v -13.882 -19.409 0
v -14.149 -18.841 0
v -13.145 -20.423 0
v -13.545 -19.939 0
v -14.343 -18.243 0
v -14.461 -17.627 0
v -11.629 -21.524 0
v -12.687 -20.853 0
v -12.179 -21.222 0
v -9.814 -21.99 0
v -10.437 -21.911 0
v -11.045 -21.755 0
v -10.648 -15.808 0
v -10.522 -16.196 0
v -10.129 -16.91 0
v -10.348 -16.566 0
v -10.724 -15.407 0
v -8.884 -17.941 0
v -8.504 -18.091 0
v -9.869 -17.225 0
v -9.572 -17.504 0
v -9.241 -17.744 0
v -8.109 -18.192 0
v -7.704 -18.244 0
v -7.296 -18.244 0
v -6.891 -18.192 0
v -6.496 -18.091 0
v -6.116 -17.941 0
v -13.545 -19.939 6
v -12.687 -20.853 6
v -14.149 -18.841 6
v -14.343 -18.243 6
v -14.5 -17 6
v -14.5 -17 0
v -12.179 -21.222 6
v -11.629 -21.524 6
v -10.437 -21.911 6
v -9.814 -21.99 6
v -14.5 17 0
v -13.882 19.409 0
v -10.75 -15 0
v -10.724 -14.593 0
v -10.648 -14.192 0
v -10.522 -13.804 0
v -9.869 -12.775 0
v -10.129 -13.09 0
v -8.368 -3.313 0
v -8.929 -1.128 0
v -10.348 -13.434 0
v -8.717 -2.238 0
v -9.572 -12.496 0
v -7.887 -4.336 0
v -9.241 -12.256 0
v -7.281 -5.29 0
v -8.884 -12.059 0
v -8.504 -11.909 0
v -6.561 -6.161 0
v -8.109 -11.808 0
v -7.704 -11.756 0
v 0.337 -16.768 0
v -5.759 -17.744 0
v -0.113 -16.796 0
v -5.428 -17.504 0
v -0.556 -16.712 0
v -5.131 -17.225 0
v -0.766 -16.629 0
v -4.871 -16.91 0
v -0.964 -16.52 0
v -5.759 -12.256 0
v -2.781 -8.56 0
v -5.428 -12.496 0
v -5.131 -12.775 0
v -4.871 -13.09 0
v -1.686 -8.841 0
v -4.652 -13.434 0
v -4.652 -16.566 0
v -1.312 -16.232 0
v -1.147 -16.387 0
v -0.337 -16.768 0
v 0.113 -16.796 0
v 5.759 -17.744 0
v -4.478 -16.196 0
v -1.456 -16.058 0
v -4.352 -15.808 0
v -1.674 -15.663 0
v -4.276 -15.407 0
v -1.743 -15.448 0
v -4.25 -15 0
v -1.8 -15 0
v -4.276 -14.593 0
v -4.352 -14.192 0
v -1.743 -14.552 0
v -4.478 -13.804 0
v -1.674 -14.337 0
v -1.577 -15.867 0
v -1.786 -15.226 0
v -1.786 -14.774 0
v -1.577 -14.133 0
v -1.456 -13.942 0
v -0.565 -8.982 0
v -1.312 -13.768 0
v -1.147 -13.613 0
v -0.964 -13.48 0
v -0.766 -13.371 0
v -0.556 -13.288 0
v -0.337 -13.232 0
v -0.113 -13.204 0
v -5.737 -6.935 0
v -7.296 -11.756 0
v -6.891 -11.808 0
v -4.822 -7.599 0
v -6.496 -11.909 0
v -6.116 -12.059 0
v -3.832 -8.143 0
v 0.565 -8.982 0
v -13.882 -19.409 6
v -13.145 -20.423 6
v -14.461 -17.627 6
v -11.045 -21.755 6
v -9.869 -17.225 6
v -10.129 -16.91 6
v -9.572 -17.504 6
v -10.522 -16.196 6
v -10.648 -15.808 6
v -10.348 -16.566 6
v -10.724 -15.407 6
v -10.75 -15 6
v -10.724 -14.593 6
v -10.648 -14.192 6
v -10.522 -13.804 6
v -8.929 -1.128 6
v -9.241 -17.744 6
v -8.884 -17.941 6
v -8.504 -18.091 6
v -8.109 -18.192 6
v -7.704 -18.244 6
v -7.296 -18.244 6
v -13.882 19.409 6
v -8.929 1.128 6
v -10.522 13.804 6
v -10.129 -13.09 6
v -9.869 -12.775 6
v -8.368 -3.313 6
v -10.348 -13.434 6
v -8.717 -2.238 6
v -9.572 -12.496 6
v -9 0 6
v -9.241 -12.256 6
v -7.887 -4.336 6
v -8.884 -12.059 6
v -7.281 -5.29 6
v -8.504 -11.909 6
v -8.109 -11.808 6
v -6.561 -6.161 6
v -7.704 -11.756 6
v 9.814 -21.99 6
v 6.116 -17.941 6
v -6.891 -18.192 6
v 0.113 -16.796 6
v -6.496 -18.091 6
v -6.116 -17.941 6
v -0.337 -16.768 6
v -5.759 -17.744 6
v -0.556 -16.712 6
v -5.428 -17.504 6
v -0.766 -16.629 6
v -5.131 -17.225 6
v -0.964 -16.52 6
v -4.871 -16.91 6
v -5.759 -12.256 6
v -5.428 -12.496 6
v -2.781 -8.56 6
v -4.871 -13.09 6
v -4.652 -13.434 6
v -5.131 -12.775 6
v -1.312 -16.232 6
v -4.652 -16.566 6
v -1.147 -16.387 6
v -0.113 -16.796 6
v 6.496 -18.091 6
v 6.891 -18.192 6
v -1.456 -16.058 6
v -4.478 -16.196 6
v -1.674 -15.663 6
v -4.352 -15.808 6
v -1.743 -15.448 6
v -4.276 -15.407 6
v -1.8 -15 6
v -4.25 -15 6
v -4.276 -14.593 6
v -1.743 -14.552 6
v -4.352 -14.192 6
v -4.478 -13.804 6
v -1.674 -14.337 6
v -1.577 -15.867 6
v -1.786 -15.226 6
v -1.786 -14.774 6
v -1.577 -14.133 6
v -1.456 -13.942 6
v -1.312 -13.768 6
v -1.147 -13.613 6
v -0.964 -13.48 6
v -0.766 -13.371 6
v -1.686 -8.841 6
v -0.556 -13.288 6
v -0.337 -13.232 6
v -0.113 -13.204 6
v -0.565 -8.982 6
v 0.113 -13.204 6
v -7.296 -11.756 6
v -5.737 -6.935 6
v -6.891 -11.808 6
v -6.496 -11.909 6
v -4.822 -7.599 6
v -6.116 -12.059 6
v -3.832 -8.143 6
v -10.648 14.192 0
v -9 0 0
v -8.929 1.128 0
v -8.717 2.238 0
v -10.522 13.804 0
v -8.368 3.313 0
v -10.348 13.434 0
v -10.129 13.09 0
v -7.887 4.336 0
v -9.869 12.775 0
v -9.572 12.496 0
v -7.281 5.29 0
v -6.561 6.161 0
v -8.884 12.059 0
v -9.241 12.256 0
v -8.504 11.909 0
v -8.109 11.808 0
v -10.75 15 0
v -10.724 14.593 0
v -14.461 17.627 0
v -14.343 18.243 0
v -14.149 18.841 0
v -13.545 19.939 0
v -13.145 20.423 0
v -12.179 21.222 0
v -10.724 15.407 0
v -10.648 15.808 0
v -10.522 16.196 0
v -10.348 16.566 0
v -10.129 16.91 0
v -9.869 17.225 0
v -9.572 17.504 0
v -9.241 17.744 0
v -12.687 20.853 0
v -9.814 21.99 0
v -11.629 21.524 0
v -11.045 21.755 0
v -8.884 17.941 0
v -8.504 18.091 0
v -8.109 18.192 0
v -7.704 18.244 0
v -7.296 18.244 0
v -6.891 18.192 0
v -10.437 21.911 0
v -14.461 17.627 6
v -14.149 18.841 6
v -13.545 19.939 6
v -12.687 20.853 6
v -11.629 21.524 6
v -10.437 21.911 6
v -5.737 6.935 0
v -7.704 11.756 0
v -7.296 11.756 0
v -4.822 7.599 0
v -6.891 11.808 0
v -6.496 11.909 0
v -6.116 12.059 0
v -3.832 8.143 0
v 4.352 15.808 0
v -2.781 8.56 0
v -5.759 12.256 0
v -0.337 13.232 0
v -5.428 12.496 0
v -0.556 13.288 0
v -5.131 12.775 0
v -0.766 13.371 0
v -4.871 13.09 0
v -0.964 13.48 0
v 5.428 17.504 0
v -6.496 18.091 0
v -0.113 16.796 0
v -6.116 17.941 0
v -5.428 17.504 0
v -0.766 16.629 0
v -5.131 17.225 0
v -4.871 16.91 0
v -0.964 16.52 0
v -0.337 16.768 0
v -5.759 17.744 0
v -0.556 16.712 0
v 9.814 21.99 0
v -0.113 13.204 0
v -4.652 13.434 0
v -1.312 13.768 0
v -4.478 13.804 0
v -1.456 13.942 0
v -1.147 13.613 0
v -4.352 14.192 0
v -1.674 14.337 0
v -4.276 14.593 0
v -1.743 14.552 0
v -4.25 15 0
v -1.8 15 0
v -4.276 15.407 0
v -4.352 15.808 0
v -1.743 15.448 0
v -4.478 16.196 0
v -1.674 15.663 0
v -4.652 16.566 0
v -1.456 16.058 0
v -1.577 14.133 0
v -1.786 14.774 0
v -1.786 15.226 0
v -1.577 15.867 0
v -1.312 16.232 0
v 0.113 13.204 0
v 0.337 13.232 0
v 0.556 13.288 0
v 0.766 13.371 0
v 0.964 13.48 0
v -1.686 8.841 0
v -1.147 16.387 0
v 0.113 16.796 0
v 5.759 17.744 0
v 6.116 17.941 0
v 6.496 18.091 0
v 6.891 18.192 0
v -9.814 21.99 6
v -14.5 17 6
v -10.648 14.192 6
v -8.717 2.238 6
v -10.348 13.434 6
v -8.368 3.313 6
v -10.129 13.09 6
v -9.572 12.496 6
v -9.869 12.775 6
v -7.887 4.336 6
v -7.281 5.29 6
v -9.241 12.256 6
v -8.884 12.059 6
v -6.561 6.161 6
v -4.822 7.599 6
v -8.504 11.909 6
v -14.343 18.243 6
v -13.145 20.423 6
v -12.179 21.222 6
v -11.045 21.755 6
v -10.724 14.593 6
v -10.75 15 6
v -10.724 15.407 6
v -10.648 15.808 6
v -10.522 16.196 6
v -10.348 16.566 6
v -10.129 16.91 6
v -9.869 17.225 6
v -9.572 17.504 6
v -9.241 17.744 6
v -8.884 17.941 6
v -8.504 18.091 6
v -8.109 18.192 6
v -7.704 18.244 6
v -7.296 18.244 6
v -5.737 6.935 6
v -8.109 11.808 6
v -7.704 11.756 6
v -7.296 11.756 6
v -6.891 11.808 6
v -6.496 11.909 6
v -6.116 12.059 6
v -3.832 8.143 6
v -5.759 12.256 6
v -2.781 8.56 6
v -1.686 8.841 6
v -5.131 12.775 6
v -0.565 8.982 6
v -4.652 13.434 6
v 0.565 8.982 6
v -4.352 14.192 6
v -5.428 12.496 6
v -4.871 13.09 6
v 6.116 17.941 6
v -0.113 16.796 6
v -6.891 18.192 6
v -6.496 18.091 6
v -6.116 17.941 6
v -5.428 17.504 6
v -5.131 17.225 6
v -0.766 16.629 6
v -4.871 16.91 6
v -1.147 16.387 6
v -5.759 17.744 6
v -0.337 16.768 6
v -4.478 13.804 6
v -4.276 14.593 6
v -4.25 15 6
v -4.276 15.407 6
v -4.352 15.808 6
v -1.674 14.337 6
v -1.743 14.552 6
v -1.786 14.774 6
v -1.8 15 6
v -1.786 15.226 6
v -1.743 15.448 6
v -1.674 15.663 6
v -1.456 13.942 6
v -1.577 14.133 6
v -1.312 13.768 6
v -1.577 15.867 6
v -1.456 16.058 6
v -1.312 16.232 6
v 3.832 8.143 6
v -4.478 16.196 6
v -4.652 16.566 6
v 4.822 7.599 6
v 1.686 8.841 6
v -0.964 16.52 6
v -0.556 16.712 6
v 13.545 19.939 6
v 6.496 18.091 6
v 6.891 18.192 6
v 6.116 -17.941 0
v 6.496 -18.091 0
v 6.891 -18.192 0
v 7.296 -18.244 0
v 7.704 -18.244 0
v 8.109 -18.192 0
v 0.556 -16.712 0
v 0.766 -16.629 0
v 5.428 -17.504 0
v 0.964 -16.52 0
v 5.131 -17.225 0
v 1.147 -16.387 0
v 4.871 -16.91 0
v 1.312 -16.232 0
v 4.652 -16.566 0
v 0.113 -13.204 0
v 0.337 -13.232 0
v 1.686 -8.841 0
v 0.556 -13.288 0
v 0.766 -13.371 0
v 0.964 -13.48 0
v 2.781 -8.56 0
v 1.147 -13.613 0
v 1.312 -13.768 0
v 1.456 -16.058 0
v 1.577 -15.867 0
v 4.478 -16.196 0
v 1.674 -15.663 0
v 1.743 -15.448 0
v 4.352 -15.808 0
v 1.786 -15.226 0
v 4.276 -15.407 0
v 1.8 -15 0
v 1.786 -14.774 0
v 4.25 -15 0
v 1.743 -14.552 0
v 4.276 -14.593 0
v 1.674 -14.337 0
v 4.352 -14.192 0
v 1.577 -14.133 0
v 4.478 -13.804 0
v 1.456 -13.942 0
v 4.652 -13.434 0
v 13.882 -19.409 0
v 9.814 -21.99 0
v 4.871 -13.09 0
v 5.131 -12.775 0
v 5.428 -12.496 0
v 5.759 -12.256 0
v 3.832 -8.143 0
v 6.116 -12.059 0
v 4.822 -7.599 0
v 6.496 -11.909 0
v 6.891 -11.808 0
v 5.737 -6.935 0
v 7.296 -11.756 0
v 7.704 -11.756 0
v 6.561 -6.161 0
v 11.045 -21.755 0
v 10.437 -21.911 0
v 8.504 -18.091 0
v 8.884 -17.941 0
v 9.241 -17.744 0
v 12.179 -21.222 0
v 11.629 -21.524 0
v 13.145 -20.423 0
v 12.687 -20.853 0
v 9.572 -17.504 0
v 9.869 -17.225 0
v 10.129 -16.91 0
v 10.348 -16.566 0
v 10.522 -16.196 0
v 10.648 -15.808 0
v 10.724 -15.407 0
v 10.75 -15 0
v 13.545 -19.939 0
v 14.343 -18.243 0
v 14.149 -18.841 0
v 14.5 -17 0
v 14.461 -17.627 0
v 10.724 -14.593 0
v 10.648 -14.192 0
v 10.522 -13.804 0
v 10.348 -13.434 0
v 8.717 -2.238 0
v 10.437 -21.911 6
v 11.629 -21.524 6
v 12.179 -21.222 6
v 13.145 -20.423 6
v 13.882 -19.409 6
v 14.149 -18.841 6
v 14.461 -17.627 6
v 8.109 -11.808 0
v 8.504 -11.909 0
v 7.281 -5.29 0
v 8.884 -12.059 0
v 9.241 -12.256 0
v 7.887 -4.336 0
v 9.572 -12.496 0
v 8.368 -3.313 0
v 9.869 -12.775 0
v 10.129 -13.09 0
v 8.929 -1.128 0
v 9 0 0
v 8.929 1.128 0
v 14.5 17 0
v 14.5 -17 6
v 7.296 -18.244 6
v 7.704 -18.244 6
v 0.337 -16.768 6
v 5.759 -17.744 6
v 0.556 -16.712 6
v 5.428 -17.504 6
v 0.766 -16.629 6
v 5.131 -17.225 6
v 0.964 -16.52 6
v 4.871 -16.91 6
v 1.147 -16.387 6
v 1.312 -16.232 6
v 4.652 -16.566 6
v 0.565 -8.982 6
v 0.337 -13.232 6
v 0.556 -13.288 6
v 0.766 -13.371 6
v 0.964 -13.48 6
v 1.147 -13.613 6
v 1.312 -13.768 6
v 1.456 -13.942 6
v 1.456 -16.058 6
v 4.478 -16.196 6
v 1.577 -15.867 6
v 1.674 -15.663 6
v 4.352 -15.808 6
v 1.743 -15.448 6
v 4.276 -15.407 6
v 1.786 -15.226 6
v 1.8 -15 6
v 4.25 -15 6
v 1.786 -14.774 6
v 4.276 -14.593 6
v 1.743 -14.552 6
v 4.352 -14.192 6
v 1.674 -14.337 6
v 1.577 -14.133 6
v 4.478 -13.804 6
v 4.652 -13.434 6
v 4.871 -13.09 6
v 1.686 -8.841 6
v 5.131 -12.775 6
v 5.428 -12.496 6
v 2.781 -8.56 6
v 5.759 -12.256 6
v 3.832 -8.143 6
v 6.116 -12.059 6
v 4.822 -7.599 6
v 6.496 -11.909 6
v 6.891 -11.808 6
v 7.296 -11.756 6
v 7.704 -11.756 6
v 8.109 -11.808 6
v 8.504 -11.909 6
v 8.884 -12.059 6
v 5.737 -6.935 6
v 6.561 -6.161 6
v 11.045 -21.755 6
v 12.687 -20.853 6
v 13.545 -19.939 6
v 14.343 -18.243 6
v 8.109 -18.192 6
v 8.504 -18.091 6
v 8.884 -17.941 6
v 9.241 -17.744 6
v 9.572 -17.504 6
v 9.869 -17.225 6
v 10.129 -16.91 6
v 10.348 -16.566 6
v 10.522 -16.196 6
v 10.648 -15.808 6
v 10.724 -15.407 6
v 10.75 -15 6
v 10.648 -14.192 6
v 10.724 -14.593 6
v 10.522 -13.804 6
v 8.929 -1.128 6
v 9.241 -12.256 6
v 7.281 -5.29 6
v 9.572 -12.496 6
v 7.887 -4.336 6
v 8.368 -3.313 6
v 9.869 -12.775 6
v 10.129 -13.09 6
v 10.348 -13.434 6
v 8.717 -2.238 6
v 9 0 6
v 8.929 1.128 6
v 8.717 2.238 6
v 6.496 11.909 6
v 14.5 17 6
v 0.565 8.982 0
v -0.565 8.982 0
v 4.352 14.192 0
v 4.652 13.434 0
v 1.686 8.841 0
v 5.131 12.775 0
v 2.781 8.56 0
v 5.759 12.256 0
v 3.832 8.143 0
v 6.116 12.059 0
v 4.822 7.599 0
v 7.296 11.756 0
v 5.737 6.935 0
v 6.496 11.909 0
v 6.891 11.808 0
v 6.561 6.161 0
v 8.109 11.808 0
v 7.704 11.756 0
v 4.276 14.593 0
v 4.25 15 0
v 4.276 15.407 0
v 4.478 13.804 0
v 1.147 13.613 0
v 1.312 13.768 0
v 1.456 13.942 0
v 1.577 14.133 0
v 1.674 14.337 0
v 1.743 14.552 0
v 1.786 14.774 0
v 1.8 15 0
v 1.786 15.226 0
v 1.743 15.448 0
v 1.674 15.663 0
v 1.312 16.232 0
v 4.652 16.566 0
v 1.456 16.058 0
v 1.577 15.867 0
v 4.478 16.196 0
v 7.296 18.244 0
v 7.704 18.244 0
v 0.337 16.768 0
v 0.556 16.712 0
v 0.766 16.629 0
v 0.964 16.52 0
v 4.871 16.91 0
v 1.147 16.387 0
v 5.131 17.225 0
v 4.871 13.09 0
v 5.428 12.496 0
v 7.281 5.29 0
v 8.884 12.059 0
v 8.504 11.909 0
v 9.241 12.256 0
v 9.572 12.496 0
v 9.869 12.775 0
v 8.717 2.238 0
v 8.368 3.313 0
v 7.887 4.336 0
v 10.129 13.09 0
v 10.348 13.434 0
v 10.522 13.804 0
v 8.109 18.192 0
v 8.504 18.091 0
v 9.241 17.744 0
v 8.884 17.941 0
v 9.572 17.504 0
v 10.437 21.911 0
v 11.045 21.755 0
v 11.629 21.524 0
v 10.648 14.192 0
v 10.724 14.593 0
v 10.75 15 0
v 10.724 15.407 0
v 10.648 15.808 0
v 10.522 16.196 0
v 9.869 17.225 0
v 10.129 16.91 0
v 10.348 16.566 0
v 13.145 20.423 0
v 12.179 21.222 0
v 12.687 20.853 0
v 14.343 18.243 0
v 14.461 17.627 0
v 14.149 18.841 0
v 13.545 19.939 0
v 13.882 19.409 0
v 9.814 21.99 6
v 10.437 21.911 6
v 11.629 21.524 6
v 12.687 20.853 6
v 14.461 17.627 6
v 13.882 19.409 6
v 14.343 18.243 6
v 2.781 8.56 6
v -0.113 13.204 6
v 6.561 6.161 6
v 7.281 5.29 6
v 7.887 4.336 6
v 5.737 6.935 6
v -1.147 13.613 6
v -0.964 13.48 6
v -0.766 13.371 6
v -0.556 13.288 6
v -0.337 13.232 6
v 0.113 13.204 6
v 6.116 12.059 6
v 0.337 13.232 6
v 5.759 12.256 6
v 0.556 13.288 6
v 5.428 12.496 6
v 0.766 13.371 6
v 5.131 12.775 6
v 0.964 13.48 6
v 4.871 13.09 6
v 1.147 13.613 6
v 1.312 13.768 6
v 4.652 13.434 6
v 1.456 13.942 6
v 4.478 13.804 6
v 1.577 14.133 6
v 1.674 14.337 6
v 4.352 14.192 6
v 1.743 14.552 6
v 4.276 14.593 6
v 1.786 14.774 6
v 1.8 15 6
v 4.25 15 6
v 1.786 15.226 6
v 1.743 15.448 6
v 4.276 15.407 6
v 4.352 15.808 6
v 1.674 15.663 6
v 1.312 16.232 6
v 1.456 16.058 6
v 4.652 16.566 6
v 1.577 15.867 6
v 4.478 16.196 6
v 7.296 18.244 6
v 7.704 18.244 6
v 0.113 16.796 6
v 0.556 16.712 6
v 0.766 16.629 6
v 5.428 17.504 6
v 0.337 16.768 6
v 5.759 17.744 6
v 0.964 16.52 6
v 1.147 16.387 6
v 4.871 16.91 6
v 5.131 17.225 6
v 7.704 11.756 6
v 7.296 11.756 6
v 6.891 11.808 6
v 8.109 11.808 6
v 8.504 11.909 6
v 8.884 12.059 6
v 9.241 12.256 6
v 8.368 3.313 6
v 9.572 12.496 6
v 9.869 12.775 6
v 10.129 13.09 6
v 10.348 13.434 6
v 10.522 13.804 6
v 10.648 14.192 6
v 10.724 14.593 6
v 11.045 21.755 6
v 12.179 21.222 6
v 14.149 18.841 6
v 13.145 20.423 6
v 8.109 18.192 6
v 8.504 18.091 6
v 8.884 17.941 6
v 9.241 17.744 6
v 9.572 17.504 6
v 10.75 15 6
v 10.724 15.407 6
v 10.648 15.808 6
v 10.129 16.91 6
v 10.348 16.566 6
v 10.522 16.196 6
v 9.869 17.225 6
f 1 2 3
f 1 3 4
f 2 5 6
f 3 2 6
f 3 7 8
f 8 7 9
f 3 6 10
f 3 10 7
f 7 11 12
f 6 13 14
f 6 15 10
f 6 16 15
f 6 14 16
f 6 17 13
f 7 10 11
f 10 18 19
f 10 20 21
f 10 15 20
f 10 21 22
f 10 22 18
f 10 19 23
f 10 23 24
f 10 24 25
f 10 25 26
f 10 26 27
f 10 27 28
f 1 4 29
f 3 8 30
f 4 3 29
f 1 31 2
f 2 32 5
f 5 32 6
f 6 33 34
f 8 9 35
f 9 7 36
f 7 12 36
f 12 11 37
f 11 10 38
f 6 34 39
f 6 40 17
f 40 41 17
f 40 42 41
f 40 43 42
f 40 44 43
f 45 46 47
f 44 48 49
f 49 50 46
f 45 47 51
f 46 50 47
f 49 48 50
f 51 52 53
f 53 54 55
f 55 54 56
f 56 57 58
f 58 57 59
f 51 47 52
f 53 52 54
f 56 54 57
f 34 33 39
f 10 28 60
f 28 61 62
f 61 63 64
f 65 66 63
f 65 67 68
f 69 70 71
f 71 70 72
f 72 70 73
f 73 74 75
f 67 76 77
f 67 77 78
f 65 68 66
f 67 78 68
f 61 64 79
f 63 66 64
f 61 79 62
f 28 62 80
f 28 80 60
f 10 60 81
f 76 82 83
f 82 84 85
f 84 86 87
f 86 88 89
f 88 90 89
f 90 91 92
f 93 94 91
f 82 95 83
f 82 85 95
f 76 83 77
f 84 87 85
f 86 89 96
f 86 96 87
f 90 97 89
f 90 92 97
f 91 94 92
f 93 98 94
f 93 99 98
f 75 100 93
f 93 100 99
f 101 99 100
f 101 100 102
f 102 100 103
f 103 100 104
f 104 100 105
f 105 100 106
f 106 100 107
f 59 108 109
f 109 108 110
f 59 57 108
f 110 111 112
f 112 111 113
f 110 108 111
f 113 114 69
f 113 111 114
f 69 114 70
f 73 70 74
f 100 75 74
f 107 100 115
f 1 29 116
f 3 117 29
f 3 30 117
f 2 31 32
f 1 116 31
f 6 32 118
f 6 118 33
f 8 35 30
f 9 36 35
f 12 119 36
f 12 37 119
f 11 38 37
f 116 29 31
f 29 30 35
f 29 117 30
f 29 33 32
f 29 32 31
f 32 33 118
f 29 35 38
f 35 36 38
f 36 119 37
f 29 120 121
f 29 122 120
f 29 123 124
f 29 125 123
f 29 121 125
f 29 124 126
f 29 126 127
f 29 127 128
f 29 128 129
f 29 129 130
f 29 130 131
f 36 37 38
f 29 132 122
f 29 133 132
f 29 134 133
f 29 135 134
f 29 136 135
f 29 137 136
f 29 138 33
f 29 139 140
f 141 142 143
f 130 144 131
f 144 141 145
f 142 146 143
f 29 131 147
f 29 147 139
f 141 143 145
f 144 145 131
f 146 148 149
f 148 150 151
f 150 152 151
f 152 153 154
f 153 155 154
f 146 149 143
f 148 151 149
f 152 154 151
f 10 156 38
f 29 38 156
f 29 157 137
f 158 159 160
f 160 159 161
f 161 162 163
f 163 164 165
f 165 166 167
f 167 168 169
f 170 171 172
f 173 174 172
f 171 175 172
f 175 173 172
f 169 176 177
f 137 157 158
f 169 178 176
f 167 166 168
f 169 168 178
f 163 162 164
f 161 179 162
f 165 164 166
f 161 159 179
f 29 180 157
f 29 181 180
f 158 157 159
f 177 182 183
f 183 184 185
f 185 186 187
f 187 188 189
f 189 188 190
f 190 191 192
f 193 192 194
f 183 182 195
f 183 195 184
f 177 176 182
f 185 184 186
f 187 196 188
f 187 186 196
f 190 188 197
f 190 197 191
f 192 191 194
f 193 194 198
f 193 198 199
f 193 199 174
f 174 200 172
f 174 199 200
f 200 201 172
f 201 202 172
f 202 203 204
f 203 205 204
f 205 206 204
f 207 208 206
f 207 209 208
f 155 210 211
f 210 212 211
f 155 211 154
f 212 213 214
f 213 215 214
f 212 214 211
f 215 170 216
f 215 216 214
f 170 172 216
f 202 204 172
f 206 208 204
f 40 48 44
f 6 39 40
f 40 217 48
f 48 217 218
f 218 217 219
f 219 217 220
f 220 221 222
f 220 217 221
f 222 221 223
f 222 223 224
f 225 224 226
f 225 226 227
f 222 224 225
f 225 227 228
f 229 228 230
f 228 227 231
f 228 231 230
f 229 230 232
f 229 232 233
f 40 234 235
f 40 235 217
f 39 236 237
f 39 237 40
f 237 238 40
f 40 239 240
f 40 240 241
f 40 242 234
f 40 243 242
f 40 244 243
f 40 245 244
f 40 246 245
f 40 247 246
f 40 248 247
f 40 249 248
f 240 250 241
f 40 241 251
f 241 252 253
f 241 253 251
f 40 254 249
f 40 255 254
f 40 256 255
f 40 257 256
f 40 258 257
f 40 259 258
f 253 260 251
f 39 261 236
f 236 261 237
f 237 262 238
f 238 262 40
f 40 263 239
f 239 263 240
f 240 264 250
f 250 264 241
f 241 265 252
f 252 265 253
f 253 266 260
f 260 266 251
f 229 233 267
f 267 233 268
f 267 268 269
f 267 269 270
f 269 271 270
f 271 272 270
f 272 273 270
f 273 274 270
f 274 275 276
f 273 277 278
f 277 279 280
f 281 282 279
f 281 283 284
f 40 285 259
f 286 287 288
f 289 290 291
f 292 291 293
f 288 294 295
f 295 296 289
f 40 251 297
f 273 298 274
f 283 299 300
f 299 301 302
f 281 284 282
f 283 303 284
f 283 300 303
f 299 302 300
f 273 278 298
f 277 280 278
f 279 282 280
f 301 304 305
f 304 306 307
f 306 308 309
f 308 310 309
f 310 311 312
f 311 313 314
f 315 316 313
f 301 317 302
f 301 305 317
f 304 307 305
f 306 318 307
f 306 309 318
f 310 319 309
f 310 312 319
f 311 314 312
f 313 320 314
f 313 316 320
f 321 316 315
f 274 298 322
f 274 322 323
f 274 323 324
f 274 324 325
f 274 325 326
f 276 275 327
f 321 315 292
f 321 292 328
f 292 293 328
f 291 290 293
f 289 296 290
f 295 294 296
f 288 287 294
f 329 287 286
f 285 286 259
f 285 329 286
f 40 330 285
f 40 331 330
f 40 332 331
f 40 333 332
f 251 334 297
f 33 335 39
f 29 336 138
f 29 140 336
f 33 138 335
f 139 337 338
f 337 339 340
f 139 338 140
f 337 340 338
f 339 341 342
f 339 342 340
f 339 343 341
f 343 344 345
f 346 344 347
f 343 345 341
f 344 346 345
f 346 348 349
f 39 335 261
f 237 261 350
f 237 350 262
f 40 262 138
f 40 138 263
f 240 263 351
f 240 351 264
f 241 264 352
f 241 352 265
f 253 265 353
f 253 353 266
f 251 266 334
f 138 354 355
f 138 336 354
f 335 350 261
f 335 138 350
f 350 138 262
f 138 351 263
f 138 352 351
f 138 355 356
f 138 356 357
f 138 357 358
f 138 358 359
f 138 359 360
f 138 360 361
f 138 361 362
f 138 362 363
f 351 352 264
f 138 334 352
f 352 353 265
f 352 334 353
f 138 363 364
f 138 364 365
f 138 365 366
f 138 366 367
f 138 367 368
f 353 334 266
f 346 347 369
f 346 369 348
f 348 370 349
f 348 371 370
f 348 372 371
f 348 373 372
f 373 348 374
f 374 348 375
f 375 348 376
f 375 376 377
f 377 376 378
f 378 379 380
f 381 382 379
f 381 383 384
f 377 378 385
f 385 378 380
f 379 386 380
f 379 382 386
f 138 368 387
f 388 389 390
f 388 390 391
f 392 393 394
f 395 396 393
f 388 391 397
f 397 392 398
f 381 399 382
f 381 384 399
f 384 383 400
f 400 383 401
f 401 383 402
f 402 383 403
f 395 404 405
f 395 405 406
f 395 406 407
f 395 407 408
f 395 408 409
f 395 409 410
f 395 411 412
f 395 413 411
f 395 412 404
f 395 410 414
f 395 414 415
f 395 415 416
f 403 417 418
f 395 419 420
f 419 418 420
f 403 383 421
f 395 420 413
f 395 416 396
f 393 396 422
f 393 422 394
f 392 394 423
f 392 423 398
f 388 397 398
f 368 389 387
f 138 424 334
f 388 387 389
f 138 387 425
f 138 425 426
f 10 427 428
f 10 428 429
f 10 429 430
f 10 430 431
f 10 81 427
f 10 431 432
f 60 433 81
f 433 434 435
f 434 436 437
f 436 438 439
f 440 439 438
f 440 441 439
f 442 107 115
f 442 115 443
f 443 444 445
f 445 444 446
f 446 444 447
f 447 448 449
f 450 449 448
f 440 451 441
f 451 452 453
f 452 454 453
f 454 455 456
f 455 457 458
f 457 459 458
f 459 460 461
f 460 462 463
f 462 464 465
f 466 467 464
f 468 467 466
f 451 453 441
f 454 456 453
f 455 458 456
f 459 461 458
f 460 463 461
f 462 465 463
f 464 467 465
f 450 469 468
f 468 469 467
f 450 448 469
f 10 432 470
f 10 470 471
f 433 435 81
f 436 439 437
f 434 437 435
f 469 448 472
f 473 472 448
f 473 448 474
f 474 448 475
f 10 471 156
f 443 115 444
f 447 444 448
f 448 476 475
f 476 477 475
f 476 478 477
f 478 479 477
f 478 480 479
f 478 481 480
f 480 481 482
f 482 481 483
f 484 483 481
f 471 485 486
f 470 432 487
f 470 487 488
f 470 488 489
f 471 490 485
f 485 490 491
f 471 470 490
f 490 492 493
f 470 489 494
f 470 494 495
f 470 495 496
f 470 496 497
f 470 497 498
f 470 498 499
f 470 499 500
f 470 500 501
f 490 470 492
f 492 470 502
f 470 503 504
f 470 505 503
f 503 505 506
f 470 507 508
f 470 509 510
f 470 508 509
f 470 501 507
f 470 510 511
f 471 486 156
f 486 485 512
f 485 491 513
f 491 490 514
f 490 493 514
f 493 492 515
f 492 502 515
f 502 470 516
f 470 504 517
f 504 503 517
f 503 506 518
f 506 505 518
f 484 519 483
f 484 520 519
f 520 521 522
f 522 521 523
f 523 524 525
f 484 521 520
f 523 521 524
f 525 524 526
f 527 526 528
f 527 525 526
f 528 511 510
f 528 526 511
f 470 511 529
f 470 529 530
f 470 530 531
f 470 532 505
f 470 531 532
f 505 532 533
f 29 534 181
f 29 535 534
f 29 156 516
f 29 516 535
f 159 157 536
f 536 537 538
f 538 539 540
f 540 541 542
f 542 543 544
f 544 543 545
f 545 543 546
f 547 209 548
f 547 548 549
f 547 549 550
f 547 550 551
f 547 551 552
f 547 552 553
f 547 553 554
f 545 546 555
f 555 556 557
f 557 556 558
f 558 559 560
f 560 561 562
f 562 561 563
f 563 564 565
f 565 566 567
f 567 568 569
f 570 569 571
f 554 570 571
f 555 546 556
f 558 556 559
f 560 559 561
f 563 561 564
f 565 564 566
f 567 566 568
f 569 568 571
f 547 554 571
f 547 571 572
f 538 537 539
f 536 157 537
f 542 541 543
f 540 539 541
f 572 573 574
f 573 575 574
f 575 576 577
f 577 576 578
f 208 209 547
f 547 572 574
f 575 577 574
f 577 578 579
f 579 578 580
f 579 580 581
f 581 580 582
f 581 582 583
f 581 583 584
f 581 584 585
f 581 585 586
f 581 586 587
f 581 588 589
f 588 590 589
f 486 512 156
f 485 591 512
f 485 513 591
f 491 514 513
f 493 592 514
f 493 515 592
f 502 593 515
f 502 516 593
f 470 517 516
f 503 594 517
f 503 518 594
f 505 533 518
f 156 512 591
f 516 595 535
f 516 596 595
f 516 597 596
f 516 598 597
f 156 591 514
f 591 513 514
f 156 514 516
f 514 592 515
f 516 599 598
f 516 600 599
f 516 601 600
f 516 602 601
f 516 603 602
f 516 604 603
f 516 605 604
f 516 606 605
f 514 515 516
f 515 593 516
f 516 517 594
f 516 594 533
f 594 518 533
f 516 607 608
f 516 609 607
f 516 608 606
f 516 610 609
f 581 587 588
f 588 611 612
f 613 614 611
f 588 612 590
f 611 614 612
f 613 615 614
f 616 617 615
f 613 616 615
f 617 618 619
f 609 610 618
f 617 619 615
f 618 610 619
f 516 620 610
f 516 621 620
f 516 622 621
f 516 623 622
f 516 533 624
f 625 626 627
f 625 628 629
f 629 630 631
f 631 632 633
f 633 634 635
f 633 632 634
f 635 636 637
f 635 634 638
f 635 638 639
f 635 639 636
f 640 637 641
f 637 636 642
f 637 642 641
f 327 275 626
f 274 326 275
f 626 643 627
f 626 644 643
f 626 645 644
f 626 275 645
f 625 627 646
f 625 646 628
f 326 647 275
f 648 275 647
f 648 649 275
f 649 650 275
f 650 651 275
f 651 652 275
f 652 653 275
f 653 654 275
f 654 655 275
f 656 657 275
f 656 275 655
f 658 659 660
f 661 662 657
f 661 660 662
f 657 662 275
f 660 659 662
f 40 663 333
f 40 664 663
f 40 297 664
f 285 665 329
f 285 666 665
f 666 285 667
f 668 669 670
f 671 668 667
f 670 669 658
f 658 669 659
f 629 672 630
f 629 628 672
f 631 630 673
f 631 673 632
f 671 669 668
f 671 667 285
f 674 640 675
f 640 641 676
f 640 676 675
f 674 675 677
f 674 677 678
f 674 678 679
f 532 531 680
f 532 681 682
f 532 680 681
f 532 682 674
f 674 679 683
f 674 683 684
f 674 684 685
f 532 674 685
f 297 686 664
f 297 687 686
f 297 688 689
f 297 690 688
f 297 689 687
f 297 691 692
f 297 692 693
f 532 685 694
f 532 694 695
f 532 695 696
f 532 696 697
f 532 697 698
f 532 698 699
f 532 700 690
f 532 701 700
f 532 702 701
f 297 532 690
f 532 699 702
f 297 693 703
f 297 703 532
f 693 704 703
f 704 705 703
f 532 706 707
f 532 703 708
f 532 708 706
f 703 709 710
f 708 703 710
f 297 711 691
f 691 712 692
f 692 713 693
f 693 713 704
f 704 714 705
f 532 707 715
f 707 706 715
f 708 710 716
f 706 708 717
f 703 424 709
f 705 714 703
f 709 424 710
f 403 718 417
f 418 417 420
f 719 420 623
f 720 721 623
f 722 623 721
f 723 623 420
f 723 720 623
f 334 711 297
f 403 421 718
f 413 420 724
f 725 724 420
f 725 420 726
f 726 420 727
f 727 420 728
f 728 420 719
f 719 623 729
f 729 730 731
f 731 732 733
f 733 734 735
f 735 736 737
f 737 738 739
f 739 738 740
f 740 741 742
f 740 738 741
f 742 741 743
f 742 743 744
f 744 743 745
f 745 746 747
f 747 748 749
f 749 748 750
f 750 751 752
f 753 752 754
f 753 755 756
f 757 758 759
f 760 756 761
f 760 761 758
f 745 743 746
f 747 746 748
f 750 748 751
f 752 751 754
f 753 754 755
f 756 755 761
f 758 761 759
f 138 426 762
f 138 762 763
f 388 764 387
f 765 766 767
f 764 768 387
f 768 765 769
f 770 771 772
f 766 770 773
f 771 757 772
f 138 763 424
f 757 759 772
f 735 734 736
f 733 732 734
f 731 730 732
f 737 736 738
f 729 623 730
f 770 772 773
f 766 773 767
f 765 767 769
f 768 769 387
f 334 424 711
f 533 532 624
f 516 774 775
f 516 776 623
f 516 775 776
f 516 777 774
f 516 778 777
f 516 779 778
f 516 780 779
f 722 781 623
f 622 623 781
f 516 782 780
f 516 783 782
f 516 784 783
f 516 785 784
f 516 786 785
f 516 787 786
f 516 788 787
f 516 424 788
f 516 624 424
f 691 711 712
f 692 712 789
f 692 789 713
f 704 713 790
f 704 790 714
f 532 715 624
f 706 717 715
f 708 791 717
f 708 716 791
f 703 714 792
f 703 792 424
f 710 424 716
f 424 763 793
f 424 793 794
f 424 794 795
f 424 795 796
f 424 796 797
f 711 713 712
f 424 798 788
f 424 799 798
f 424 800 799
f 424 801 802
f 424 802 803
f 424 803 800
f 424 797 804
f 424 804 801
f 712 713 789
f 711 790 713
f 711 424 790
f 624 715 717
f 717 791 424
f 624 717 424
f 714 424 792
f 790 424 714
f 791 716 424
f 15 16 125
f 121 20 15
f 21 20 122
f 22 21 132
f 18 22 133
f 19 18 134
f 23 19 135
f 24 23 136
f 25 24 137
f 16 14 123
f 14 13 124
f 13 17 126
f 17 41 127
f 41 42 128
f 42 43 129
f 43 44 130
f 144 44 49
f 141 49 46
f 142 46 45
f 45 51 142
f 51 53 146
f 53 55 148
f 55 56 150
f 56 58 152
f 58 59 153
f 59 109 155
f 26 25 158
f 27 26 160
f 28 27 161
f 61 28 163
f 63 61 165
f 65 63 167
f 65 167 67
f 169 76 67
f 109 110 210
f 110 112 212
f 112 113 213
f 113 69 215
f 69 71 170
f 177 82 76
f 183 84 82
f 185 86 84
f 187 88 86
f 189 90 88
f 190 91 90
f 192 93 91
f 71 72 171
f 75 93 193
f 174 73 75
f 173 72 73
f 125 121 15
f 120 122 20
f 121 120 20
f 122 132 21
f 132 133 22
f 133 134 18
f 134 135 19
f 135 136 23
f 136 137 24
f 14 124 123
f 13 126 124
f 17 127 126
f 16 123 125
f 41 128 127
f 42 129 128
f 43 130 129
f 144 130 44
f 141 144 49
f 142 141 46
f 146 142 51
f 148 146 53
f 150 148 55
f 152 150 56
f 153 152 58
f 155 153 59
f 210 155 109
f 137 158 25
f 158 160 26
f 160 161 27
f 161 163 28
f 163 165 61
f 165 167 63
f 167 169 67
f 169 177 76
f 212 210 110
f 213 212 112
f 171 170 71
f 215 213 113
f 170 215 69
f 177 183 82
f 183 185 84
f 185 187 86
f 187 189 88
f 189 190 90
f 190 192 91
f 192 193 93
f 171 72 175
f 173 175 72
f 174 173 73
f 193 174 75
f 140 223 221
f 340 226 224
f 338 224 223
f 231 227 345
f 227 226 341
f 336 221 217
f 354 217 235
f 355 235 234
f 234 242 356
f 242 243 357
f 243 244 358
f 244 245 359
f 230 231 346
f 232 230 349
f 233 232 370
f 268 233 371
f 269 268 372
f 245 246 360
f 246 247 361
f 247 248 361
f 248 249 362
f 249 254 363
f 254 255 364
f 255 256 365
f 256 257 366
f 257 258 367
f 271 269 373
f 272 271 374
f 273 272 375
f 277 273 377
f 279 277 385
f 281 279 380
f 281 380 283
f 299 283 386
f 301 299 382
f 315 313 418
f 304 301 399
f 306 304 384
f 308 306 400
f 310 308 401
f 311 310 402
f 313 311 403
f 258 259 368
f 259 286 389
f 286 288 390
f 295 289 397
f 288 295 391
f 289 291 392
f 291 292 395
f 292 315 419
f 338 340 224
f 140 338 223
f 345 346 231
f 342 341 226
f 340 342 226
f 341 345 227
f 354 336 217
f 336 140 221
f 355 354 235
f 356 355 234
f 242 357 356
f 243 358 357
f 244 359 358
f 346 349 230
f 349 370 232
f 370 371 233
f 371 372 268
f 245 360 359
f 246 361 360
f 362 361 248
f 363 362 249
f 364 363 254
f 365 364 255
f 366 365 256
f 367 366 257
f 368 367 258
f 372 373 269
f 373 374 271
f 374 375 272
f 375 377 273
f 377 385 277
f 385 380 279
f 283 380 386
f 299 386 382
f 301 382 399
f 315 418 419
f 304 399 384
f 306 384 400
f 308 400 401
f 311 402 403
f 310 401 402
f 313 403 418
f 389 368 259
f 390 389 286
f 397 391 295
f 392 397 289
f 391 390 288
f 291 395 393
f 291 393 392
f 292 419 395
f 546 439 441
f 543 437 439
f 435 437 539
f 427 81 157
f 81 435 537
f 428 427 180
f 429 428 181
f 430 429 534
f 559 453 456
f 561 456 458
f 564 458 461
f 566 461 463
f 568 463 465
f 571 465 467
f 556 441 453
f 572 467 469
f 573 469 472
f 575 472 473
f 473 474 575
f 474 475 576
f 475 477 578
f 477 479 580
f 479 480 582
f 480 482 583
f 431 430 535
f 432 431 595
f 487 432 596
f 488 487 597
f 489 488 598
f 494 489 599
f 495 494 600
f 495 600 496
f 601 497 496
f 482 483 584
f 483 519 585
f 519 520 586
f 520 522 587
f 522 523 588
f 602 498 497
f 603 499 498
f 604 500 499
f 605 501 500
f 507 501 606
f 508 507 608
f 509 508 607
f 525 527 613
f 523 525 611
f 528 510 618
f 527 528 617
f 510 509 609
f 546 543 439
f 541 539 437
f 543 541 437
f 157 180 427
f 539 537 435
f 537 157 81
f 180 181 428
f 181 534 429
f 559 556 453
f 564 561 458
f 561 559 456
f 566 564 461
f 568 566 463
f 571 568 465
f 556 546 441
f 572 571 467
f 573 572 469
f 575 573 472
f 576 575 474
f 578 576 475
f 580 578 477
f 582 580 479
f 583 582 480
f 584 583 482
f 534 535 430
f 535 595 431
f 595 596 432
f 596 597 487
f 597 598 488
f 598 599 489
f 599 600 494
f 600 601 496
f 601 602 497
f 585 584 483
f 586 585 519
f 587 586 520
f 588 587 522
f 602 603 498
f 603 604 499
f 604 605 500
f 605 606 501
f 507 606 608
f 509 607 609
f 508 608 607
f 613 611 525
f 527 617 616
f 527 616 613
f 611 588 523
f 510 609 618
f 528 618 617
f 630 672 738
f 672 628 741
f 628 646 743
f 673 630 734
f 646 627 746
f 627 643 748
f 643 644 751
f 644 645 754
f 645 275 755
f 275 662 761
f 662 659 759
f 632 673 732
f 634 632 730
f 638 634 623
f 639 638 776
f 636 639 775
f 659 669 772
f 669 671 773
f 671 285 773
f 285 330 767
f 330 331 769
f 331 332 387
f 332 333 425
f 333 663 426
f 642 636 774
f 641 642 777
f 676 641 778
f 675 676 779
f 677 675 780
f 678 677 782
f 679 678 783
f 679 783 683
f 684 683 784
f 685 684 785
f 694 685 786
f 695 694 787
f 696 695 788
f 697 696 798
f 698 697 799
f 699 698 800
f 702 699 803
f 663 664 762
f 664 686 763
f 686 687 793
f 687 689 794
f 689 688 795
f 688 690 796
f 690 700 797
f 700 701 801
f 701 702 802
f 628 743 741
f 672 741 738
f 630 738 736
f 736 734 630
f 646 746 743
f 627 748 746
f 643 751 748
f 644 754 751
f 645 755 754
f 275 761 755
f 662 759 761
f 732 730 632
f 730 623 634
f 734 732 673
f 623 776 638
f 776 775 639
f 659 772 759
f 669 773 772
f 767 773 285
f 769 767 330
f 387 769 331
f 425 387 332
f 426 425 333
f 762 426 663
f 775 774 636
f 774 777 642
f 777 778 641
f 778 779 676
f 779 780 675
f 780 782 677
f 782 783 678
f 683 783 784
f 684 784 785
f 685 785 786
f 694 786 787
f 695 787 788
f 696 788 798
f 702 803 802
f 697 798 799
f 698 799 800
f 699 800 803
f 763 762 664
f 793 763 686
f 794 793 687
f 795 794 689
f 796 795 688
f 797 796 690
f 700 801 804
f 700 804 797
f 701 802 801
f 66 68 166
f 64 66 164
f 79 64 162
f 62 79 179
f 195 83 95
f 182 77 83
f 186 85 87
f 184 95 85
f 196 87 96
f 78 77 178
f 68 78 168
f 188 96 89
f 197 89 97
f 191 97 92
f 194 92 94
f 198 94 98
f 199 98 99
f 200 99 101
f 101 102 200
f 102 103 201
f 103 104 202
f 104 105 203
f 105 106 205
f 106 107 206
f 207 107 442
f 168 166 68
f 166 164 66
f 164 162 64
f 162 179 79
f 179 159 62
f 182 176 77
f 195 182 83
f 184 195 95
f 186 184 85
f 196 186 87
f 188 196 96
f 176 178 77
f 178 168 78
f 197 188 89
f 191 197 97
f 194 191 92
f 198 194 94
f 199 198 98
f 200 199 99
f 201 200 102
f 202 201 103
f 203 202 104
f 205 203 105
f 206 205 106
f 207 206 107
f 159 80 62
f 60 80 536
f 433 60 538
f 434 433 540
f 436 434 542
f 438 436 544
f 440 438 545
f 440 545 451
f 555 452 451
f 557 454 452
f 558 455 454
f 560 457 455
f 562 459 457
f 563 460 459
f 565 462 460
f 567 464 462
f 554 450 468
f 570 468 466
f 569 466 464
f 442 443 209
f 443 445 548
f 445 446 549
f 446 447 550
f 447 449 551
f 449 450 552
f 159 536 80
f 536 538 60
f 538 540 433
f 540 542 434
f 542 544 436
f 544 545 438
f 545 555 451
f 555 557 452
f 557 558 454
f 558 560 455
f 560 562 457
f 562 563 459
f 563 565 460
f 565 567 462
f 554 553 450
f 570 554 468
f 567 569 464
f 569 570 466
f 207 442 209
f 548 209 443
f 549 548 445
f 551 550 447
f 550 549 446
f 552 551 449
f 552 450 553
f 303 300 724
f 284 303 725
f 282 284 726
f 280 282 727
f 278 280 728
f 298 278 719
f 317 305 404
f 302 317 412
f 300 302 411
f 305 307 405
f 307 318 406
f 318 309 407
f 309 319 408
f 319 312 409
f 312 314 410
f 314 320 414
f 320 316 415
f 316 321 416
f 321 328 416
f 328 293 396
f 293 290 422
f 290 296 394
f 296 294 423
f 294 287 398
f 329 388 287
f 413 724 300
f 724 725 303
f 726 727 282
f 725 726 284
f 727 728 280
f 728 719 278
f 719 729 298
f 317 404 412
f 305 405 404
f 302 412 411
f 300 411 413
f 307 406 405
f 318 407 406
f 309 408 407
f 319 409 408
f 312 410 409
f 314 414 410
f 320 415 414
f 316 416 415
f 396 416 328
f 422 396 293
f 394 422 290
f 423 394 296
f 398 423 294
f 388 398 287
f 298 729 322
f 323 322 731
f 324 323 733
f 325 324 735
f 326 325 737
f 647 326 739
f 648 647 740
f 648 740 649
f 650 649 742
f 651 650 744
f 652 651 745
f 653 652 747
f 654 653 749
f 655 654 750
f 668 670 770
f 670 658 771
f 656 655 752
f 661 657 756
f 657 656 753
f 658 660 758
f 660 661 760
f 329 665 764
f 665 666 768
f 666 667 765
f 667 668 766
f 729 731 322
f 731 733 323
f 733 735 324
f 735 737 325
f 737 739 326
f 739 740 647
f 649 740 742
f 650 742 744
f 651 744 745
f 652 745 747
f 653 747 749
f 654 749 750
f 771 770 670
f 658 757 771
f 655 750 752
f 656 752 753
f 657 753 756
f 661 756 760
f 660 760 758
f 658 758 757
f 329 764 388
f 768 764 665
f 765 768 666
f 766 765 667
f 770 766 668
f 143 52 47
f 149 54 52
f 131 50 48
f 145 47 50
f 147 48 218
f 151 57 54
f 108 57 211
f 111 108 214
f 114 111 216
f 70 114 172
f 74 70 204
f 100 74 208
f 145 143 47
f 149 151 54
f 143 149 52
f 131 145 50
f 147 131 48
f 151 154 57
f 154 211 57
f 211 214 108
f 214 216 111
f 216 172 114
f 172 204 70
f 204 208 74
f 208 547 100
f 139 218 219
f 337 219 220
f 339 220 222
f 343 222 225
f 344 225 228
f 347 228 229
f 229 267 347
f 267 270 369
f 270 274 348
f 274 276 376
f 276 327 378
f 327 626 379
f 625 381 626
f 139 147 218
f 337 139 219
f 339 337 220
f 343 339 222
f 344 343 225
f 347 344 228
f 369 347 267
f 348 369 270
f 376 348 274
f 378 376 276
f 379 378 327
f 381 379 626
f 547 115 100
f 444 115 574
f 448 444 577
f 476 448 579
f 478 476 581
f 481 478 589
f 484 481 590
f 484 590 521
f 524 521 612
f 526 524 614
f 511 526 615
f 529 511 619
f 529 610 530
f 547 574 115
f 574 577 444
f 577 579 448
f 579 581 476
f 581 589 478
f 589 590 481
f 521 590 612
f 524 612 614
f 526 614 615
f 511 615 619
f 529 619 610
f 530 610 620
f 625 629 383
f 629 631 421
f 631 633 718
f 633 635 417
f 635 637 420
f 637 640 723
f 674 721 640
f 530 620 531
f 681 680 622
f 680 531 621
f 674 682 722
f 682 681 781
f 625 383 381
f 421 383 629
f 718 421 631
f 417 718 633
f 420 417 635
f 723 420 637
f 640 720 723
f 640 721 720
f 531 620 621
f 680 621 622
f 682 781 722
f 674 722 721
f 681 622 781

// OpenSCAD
$fn = 50;

difference() {
	union() {
		hull() {
			translate(v = [-9.5, 17.0, 0]) {
				cylinder(h = 6, r = 5);
			}
			translate(v = [9.5, 17.0, 0]) {
				cylinder(h = 6, r = 5);
			}
			translate(v = [-9.5, -17.0, 0]) {
				cylinder(h = 6, r = 5);
			}
			translate(v = [9.5, -17.0, 0]) {
				cylinder(h = 6, r = 5);
			}
		}
	}
	union() {
		translate(v = [-7.5, -15.0, 0]) {
			cylinder(h = 6, r = 3.25);
		}
		translate(v = [-7.5, 15.0, 0]) {
			cylinder(h = 6, r = 3.25);
		}
		translate(v = [7.5, -15.0, 0]) {
			cylinder(h = 6, r = 3.25);
		}
		translate(v = [7.5, 15.0, 0]) {
			cylinder(h = 6, r = 3.25);
		}
		translate(v = [0.0, -15.0, 0]) {
			cylinder(h = 6, r = 1.8);
		}
		translate(v = [0.0, 15.0, 0]) {
			cylinder(h = 6, r = 1.8);
		}
		cylinder(h = 6, r = 9.0);
	}
}
